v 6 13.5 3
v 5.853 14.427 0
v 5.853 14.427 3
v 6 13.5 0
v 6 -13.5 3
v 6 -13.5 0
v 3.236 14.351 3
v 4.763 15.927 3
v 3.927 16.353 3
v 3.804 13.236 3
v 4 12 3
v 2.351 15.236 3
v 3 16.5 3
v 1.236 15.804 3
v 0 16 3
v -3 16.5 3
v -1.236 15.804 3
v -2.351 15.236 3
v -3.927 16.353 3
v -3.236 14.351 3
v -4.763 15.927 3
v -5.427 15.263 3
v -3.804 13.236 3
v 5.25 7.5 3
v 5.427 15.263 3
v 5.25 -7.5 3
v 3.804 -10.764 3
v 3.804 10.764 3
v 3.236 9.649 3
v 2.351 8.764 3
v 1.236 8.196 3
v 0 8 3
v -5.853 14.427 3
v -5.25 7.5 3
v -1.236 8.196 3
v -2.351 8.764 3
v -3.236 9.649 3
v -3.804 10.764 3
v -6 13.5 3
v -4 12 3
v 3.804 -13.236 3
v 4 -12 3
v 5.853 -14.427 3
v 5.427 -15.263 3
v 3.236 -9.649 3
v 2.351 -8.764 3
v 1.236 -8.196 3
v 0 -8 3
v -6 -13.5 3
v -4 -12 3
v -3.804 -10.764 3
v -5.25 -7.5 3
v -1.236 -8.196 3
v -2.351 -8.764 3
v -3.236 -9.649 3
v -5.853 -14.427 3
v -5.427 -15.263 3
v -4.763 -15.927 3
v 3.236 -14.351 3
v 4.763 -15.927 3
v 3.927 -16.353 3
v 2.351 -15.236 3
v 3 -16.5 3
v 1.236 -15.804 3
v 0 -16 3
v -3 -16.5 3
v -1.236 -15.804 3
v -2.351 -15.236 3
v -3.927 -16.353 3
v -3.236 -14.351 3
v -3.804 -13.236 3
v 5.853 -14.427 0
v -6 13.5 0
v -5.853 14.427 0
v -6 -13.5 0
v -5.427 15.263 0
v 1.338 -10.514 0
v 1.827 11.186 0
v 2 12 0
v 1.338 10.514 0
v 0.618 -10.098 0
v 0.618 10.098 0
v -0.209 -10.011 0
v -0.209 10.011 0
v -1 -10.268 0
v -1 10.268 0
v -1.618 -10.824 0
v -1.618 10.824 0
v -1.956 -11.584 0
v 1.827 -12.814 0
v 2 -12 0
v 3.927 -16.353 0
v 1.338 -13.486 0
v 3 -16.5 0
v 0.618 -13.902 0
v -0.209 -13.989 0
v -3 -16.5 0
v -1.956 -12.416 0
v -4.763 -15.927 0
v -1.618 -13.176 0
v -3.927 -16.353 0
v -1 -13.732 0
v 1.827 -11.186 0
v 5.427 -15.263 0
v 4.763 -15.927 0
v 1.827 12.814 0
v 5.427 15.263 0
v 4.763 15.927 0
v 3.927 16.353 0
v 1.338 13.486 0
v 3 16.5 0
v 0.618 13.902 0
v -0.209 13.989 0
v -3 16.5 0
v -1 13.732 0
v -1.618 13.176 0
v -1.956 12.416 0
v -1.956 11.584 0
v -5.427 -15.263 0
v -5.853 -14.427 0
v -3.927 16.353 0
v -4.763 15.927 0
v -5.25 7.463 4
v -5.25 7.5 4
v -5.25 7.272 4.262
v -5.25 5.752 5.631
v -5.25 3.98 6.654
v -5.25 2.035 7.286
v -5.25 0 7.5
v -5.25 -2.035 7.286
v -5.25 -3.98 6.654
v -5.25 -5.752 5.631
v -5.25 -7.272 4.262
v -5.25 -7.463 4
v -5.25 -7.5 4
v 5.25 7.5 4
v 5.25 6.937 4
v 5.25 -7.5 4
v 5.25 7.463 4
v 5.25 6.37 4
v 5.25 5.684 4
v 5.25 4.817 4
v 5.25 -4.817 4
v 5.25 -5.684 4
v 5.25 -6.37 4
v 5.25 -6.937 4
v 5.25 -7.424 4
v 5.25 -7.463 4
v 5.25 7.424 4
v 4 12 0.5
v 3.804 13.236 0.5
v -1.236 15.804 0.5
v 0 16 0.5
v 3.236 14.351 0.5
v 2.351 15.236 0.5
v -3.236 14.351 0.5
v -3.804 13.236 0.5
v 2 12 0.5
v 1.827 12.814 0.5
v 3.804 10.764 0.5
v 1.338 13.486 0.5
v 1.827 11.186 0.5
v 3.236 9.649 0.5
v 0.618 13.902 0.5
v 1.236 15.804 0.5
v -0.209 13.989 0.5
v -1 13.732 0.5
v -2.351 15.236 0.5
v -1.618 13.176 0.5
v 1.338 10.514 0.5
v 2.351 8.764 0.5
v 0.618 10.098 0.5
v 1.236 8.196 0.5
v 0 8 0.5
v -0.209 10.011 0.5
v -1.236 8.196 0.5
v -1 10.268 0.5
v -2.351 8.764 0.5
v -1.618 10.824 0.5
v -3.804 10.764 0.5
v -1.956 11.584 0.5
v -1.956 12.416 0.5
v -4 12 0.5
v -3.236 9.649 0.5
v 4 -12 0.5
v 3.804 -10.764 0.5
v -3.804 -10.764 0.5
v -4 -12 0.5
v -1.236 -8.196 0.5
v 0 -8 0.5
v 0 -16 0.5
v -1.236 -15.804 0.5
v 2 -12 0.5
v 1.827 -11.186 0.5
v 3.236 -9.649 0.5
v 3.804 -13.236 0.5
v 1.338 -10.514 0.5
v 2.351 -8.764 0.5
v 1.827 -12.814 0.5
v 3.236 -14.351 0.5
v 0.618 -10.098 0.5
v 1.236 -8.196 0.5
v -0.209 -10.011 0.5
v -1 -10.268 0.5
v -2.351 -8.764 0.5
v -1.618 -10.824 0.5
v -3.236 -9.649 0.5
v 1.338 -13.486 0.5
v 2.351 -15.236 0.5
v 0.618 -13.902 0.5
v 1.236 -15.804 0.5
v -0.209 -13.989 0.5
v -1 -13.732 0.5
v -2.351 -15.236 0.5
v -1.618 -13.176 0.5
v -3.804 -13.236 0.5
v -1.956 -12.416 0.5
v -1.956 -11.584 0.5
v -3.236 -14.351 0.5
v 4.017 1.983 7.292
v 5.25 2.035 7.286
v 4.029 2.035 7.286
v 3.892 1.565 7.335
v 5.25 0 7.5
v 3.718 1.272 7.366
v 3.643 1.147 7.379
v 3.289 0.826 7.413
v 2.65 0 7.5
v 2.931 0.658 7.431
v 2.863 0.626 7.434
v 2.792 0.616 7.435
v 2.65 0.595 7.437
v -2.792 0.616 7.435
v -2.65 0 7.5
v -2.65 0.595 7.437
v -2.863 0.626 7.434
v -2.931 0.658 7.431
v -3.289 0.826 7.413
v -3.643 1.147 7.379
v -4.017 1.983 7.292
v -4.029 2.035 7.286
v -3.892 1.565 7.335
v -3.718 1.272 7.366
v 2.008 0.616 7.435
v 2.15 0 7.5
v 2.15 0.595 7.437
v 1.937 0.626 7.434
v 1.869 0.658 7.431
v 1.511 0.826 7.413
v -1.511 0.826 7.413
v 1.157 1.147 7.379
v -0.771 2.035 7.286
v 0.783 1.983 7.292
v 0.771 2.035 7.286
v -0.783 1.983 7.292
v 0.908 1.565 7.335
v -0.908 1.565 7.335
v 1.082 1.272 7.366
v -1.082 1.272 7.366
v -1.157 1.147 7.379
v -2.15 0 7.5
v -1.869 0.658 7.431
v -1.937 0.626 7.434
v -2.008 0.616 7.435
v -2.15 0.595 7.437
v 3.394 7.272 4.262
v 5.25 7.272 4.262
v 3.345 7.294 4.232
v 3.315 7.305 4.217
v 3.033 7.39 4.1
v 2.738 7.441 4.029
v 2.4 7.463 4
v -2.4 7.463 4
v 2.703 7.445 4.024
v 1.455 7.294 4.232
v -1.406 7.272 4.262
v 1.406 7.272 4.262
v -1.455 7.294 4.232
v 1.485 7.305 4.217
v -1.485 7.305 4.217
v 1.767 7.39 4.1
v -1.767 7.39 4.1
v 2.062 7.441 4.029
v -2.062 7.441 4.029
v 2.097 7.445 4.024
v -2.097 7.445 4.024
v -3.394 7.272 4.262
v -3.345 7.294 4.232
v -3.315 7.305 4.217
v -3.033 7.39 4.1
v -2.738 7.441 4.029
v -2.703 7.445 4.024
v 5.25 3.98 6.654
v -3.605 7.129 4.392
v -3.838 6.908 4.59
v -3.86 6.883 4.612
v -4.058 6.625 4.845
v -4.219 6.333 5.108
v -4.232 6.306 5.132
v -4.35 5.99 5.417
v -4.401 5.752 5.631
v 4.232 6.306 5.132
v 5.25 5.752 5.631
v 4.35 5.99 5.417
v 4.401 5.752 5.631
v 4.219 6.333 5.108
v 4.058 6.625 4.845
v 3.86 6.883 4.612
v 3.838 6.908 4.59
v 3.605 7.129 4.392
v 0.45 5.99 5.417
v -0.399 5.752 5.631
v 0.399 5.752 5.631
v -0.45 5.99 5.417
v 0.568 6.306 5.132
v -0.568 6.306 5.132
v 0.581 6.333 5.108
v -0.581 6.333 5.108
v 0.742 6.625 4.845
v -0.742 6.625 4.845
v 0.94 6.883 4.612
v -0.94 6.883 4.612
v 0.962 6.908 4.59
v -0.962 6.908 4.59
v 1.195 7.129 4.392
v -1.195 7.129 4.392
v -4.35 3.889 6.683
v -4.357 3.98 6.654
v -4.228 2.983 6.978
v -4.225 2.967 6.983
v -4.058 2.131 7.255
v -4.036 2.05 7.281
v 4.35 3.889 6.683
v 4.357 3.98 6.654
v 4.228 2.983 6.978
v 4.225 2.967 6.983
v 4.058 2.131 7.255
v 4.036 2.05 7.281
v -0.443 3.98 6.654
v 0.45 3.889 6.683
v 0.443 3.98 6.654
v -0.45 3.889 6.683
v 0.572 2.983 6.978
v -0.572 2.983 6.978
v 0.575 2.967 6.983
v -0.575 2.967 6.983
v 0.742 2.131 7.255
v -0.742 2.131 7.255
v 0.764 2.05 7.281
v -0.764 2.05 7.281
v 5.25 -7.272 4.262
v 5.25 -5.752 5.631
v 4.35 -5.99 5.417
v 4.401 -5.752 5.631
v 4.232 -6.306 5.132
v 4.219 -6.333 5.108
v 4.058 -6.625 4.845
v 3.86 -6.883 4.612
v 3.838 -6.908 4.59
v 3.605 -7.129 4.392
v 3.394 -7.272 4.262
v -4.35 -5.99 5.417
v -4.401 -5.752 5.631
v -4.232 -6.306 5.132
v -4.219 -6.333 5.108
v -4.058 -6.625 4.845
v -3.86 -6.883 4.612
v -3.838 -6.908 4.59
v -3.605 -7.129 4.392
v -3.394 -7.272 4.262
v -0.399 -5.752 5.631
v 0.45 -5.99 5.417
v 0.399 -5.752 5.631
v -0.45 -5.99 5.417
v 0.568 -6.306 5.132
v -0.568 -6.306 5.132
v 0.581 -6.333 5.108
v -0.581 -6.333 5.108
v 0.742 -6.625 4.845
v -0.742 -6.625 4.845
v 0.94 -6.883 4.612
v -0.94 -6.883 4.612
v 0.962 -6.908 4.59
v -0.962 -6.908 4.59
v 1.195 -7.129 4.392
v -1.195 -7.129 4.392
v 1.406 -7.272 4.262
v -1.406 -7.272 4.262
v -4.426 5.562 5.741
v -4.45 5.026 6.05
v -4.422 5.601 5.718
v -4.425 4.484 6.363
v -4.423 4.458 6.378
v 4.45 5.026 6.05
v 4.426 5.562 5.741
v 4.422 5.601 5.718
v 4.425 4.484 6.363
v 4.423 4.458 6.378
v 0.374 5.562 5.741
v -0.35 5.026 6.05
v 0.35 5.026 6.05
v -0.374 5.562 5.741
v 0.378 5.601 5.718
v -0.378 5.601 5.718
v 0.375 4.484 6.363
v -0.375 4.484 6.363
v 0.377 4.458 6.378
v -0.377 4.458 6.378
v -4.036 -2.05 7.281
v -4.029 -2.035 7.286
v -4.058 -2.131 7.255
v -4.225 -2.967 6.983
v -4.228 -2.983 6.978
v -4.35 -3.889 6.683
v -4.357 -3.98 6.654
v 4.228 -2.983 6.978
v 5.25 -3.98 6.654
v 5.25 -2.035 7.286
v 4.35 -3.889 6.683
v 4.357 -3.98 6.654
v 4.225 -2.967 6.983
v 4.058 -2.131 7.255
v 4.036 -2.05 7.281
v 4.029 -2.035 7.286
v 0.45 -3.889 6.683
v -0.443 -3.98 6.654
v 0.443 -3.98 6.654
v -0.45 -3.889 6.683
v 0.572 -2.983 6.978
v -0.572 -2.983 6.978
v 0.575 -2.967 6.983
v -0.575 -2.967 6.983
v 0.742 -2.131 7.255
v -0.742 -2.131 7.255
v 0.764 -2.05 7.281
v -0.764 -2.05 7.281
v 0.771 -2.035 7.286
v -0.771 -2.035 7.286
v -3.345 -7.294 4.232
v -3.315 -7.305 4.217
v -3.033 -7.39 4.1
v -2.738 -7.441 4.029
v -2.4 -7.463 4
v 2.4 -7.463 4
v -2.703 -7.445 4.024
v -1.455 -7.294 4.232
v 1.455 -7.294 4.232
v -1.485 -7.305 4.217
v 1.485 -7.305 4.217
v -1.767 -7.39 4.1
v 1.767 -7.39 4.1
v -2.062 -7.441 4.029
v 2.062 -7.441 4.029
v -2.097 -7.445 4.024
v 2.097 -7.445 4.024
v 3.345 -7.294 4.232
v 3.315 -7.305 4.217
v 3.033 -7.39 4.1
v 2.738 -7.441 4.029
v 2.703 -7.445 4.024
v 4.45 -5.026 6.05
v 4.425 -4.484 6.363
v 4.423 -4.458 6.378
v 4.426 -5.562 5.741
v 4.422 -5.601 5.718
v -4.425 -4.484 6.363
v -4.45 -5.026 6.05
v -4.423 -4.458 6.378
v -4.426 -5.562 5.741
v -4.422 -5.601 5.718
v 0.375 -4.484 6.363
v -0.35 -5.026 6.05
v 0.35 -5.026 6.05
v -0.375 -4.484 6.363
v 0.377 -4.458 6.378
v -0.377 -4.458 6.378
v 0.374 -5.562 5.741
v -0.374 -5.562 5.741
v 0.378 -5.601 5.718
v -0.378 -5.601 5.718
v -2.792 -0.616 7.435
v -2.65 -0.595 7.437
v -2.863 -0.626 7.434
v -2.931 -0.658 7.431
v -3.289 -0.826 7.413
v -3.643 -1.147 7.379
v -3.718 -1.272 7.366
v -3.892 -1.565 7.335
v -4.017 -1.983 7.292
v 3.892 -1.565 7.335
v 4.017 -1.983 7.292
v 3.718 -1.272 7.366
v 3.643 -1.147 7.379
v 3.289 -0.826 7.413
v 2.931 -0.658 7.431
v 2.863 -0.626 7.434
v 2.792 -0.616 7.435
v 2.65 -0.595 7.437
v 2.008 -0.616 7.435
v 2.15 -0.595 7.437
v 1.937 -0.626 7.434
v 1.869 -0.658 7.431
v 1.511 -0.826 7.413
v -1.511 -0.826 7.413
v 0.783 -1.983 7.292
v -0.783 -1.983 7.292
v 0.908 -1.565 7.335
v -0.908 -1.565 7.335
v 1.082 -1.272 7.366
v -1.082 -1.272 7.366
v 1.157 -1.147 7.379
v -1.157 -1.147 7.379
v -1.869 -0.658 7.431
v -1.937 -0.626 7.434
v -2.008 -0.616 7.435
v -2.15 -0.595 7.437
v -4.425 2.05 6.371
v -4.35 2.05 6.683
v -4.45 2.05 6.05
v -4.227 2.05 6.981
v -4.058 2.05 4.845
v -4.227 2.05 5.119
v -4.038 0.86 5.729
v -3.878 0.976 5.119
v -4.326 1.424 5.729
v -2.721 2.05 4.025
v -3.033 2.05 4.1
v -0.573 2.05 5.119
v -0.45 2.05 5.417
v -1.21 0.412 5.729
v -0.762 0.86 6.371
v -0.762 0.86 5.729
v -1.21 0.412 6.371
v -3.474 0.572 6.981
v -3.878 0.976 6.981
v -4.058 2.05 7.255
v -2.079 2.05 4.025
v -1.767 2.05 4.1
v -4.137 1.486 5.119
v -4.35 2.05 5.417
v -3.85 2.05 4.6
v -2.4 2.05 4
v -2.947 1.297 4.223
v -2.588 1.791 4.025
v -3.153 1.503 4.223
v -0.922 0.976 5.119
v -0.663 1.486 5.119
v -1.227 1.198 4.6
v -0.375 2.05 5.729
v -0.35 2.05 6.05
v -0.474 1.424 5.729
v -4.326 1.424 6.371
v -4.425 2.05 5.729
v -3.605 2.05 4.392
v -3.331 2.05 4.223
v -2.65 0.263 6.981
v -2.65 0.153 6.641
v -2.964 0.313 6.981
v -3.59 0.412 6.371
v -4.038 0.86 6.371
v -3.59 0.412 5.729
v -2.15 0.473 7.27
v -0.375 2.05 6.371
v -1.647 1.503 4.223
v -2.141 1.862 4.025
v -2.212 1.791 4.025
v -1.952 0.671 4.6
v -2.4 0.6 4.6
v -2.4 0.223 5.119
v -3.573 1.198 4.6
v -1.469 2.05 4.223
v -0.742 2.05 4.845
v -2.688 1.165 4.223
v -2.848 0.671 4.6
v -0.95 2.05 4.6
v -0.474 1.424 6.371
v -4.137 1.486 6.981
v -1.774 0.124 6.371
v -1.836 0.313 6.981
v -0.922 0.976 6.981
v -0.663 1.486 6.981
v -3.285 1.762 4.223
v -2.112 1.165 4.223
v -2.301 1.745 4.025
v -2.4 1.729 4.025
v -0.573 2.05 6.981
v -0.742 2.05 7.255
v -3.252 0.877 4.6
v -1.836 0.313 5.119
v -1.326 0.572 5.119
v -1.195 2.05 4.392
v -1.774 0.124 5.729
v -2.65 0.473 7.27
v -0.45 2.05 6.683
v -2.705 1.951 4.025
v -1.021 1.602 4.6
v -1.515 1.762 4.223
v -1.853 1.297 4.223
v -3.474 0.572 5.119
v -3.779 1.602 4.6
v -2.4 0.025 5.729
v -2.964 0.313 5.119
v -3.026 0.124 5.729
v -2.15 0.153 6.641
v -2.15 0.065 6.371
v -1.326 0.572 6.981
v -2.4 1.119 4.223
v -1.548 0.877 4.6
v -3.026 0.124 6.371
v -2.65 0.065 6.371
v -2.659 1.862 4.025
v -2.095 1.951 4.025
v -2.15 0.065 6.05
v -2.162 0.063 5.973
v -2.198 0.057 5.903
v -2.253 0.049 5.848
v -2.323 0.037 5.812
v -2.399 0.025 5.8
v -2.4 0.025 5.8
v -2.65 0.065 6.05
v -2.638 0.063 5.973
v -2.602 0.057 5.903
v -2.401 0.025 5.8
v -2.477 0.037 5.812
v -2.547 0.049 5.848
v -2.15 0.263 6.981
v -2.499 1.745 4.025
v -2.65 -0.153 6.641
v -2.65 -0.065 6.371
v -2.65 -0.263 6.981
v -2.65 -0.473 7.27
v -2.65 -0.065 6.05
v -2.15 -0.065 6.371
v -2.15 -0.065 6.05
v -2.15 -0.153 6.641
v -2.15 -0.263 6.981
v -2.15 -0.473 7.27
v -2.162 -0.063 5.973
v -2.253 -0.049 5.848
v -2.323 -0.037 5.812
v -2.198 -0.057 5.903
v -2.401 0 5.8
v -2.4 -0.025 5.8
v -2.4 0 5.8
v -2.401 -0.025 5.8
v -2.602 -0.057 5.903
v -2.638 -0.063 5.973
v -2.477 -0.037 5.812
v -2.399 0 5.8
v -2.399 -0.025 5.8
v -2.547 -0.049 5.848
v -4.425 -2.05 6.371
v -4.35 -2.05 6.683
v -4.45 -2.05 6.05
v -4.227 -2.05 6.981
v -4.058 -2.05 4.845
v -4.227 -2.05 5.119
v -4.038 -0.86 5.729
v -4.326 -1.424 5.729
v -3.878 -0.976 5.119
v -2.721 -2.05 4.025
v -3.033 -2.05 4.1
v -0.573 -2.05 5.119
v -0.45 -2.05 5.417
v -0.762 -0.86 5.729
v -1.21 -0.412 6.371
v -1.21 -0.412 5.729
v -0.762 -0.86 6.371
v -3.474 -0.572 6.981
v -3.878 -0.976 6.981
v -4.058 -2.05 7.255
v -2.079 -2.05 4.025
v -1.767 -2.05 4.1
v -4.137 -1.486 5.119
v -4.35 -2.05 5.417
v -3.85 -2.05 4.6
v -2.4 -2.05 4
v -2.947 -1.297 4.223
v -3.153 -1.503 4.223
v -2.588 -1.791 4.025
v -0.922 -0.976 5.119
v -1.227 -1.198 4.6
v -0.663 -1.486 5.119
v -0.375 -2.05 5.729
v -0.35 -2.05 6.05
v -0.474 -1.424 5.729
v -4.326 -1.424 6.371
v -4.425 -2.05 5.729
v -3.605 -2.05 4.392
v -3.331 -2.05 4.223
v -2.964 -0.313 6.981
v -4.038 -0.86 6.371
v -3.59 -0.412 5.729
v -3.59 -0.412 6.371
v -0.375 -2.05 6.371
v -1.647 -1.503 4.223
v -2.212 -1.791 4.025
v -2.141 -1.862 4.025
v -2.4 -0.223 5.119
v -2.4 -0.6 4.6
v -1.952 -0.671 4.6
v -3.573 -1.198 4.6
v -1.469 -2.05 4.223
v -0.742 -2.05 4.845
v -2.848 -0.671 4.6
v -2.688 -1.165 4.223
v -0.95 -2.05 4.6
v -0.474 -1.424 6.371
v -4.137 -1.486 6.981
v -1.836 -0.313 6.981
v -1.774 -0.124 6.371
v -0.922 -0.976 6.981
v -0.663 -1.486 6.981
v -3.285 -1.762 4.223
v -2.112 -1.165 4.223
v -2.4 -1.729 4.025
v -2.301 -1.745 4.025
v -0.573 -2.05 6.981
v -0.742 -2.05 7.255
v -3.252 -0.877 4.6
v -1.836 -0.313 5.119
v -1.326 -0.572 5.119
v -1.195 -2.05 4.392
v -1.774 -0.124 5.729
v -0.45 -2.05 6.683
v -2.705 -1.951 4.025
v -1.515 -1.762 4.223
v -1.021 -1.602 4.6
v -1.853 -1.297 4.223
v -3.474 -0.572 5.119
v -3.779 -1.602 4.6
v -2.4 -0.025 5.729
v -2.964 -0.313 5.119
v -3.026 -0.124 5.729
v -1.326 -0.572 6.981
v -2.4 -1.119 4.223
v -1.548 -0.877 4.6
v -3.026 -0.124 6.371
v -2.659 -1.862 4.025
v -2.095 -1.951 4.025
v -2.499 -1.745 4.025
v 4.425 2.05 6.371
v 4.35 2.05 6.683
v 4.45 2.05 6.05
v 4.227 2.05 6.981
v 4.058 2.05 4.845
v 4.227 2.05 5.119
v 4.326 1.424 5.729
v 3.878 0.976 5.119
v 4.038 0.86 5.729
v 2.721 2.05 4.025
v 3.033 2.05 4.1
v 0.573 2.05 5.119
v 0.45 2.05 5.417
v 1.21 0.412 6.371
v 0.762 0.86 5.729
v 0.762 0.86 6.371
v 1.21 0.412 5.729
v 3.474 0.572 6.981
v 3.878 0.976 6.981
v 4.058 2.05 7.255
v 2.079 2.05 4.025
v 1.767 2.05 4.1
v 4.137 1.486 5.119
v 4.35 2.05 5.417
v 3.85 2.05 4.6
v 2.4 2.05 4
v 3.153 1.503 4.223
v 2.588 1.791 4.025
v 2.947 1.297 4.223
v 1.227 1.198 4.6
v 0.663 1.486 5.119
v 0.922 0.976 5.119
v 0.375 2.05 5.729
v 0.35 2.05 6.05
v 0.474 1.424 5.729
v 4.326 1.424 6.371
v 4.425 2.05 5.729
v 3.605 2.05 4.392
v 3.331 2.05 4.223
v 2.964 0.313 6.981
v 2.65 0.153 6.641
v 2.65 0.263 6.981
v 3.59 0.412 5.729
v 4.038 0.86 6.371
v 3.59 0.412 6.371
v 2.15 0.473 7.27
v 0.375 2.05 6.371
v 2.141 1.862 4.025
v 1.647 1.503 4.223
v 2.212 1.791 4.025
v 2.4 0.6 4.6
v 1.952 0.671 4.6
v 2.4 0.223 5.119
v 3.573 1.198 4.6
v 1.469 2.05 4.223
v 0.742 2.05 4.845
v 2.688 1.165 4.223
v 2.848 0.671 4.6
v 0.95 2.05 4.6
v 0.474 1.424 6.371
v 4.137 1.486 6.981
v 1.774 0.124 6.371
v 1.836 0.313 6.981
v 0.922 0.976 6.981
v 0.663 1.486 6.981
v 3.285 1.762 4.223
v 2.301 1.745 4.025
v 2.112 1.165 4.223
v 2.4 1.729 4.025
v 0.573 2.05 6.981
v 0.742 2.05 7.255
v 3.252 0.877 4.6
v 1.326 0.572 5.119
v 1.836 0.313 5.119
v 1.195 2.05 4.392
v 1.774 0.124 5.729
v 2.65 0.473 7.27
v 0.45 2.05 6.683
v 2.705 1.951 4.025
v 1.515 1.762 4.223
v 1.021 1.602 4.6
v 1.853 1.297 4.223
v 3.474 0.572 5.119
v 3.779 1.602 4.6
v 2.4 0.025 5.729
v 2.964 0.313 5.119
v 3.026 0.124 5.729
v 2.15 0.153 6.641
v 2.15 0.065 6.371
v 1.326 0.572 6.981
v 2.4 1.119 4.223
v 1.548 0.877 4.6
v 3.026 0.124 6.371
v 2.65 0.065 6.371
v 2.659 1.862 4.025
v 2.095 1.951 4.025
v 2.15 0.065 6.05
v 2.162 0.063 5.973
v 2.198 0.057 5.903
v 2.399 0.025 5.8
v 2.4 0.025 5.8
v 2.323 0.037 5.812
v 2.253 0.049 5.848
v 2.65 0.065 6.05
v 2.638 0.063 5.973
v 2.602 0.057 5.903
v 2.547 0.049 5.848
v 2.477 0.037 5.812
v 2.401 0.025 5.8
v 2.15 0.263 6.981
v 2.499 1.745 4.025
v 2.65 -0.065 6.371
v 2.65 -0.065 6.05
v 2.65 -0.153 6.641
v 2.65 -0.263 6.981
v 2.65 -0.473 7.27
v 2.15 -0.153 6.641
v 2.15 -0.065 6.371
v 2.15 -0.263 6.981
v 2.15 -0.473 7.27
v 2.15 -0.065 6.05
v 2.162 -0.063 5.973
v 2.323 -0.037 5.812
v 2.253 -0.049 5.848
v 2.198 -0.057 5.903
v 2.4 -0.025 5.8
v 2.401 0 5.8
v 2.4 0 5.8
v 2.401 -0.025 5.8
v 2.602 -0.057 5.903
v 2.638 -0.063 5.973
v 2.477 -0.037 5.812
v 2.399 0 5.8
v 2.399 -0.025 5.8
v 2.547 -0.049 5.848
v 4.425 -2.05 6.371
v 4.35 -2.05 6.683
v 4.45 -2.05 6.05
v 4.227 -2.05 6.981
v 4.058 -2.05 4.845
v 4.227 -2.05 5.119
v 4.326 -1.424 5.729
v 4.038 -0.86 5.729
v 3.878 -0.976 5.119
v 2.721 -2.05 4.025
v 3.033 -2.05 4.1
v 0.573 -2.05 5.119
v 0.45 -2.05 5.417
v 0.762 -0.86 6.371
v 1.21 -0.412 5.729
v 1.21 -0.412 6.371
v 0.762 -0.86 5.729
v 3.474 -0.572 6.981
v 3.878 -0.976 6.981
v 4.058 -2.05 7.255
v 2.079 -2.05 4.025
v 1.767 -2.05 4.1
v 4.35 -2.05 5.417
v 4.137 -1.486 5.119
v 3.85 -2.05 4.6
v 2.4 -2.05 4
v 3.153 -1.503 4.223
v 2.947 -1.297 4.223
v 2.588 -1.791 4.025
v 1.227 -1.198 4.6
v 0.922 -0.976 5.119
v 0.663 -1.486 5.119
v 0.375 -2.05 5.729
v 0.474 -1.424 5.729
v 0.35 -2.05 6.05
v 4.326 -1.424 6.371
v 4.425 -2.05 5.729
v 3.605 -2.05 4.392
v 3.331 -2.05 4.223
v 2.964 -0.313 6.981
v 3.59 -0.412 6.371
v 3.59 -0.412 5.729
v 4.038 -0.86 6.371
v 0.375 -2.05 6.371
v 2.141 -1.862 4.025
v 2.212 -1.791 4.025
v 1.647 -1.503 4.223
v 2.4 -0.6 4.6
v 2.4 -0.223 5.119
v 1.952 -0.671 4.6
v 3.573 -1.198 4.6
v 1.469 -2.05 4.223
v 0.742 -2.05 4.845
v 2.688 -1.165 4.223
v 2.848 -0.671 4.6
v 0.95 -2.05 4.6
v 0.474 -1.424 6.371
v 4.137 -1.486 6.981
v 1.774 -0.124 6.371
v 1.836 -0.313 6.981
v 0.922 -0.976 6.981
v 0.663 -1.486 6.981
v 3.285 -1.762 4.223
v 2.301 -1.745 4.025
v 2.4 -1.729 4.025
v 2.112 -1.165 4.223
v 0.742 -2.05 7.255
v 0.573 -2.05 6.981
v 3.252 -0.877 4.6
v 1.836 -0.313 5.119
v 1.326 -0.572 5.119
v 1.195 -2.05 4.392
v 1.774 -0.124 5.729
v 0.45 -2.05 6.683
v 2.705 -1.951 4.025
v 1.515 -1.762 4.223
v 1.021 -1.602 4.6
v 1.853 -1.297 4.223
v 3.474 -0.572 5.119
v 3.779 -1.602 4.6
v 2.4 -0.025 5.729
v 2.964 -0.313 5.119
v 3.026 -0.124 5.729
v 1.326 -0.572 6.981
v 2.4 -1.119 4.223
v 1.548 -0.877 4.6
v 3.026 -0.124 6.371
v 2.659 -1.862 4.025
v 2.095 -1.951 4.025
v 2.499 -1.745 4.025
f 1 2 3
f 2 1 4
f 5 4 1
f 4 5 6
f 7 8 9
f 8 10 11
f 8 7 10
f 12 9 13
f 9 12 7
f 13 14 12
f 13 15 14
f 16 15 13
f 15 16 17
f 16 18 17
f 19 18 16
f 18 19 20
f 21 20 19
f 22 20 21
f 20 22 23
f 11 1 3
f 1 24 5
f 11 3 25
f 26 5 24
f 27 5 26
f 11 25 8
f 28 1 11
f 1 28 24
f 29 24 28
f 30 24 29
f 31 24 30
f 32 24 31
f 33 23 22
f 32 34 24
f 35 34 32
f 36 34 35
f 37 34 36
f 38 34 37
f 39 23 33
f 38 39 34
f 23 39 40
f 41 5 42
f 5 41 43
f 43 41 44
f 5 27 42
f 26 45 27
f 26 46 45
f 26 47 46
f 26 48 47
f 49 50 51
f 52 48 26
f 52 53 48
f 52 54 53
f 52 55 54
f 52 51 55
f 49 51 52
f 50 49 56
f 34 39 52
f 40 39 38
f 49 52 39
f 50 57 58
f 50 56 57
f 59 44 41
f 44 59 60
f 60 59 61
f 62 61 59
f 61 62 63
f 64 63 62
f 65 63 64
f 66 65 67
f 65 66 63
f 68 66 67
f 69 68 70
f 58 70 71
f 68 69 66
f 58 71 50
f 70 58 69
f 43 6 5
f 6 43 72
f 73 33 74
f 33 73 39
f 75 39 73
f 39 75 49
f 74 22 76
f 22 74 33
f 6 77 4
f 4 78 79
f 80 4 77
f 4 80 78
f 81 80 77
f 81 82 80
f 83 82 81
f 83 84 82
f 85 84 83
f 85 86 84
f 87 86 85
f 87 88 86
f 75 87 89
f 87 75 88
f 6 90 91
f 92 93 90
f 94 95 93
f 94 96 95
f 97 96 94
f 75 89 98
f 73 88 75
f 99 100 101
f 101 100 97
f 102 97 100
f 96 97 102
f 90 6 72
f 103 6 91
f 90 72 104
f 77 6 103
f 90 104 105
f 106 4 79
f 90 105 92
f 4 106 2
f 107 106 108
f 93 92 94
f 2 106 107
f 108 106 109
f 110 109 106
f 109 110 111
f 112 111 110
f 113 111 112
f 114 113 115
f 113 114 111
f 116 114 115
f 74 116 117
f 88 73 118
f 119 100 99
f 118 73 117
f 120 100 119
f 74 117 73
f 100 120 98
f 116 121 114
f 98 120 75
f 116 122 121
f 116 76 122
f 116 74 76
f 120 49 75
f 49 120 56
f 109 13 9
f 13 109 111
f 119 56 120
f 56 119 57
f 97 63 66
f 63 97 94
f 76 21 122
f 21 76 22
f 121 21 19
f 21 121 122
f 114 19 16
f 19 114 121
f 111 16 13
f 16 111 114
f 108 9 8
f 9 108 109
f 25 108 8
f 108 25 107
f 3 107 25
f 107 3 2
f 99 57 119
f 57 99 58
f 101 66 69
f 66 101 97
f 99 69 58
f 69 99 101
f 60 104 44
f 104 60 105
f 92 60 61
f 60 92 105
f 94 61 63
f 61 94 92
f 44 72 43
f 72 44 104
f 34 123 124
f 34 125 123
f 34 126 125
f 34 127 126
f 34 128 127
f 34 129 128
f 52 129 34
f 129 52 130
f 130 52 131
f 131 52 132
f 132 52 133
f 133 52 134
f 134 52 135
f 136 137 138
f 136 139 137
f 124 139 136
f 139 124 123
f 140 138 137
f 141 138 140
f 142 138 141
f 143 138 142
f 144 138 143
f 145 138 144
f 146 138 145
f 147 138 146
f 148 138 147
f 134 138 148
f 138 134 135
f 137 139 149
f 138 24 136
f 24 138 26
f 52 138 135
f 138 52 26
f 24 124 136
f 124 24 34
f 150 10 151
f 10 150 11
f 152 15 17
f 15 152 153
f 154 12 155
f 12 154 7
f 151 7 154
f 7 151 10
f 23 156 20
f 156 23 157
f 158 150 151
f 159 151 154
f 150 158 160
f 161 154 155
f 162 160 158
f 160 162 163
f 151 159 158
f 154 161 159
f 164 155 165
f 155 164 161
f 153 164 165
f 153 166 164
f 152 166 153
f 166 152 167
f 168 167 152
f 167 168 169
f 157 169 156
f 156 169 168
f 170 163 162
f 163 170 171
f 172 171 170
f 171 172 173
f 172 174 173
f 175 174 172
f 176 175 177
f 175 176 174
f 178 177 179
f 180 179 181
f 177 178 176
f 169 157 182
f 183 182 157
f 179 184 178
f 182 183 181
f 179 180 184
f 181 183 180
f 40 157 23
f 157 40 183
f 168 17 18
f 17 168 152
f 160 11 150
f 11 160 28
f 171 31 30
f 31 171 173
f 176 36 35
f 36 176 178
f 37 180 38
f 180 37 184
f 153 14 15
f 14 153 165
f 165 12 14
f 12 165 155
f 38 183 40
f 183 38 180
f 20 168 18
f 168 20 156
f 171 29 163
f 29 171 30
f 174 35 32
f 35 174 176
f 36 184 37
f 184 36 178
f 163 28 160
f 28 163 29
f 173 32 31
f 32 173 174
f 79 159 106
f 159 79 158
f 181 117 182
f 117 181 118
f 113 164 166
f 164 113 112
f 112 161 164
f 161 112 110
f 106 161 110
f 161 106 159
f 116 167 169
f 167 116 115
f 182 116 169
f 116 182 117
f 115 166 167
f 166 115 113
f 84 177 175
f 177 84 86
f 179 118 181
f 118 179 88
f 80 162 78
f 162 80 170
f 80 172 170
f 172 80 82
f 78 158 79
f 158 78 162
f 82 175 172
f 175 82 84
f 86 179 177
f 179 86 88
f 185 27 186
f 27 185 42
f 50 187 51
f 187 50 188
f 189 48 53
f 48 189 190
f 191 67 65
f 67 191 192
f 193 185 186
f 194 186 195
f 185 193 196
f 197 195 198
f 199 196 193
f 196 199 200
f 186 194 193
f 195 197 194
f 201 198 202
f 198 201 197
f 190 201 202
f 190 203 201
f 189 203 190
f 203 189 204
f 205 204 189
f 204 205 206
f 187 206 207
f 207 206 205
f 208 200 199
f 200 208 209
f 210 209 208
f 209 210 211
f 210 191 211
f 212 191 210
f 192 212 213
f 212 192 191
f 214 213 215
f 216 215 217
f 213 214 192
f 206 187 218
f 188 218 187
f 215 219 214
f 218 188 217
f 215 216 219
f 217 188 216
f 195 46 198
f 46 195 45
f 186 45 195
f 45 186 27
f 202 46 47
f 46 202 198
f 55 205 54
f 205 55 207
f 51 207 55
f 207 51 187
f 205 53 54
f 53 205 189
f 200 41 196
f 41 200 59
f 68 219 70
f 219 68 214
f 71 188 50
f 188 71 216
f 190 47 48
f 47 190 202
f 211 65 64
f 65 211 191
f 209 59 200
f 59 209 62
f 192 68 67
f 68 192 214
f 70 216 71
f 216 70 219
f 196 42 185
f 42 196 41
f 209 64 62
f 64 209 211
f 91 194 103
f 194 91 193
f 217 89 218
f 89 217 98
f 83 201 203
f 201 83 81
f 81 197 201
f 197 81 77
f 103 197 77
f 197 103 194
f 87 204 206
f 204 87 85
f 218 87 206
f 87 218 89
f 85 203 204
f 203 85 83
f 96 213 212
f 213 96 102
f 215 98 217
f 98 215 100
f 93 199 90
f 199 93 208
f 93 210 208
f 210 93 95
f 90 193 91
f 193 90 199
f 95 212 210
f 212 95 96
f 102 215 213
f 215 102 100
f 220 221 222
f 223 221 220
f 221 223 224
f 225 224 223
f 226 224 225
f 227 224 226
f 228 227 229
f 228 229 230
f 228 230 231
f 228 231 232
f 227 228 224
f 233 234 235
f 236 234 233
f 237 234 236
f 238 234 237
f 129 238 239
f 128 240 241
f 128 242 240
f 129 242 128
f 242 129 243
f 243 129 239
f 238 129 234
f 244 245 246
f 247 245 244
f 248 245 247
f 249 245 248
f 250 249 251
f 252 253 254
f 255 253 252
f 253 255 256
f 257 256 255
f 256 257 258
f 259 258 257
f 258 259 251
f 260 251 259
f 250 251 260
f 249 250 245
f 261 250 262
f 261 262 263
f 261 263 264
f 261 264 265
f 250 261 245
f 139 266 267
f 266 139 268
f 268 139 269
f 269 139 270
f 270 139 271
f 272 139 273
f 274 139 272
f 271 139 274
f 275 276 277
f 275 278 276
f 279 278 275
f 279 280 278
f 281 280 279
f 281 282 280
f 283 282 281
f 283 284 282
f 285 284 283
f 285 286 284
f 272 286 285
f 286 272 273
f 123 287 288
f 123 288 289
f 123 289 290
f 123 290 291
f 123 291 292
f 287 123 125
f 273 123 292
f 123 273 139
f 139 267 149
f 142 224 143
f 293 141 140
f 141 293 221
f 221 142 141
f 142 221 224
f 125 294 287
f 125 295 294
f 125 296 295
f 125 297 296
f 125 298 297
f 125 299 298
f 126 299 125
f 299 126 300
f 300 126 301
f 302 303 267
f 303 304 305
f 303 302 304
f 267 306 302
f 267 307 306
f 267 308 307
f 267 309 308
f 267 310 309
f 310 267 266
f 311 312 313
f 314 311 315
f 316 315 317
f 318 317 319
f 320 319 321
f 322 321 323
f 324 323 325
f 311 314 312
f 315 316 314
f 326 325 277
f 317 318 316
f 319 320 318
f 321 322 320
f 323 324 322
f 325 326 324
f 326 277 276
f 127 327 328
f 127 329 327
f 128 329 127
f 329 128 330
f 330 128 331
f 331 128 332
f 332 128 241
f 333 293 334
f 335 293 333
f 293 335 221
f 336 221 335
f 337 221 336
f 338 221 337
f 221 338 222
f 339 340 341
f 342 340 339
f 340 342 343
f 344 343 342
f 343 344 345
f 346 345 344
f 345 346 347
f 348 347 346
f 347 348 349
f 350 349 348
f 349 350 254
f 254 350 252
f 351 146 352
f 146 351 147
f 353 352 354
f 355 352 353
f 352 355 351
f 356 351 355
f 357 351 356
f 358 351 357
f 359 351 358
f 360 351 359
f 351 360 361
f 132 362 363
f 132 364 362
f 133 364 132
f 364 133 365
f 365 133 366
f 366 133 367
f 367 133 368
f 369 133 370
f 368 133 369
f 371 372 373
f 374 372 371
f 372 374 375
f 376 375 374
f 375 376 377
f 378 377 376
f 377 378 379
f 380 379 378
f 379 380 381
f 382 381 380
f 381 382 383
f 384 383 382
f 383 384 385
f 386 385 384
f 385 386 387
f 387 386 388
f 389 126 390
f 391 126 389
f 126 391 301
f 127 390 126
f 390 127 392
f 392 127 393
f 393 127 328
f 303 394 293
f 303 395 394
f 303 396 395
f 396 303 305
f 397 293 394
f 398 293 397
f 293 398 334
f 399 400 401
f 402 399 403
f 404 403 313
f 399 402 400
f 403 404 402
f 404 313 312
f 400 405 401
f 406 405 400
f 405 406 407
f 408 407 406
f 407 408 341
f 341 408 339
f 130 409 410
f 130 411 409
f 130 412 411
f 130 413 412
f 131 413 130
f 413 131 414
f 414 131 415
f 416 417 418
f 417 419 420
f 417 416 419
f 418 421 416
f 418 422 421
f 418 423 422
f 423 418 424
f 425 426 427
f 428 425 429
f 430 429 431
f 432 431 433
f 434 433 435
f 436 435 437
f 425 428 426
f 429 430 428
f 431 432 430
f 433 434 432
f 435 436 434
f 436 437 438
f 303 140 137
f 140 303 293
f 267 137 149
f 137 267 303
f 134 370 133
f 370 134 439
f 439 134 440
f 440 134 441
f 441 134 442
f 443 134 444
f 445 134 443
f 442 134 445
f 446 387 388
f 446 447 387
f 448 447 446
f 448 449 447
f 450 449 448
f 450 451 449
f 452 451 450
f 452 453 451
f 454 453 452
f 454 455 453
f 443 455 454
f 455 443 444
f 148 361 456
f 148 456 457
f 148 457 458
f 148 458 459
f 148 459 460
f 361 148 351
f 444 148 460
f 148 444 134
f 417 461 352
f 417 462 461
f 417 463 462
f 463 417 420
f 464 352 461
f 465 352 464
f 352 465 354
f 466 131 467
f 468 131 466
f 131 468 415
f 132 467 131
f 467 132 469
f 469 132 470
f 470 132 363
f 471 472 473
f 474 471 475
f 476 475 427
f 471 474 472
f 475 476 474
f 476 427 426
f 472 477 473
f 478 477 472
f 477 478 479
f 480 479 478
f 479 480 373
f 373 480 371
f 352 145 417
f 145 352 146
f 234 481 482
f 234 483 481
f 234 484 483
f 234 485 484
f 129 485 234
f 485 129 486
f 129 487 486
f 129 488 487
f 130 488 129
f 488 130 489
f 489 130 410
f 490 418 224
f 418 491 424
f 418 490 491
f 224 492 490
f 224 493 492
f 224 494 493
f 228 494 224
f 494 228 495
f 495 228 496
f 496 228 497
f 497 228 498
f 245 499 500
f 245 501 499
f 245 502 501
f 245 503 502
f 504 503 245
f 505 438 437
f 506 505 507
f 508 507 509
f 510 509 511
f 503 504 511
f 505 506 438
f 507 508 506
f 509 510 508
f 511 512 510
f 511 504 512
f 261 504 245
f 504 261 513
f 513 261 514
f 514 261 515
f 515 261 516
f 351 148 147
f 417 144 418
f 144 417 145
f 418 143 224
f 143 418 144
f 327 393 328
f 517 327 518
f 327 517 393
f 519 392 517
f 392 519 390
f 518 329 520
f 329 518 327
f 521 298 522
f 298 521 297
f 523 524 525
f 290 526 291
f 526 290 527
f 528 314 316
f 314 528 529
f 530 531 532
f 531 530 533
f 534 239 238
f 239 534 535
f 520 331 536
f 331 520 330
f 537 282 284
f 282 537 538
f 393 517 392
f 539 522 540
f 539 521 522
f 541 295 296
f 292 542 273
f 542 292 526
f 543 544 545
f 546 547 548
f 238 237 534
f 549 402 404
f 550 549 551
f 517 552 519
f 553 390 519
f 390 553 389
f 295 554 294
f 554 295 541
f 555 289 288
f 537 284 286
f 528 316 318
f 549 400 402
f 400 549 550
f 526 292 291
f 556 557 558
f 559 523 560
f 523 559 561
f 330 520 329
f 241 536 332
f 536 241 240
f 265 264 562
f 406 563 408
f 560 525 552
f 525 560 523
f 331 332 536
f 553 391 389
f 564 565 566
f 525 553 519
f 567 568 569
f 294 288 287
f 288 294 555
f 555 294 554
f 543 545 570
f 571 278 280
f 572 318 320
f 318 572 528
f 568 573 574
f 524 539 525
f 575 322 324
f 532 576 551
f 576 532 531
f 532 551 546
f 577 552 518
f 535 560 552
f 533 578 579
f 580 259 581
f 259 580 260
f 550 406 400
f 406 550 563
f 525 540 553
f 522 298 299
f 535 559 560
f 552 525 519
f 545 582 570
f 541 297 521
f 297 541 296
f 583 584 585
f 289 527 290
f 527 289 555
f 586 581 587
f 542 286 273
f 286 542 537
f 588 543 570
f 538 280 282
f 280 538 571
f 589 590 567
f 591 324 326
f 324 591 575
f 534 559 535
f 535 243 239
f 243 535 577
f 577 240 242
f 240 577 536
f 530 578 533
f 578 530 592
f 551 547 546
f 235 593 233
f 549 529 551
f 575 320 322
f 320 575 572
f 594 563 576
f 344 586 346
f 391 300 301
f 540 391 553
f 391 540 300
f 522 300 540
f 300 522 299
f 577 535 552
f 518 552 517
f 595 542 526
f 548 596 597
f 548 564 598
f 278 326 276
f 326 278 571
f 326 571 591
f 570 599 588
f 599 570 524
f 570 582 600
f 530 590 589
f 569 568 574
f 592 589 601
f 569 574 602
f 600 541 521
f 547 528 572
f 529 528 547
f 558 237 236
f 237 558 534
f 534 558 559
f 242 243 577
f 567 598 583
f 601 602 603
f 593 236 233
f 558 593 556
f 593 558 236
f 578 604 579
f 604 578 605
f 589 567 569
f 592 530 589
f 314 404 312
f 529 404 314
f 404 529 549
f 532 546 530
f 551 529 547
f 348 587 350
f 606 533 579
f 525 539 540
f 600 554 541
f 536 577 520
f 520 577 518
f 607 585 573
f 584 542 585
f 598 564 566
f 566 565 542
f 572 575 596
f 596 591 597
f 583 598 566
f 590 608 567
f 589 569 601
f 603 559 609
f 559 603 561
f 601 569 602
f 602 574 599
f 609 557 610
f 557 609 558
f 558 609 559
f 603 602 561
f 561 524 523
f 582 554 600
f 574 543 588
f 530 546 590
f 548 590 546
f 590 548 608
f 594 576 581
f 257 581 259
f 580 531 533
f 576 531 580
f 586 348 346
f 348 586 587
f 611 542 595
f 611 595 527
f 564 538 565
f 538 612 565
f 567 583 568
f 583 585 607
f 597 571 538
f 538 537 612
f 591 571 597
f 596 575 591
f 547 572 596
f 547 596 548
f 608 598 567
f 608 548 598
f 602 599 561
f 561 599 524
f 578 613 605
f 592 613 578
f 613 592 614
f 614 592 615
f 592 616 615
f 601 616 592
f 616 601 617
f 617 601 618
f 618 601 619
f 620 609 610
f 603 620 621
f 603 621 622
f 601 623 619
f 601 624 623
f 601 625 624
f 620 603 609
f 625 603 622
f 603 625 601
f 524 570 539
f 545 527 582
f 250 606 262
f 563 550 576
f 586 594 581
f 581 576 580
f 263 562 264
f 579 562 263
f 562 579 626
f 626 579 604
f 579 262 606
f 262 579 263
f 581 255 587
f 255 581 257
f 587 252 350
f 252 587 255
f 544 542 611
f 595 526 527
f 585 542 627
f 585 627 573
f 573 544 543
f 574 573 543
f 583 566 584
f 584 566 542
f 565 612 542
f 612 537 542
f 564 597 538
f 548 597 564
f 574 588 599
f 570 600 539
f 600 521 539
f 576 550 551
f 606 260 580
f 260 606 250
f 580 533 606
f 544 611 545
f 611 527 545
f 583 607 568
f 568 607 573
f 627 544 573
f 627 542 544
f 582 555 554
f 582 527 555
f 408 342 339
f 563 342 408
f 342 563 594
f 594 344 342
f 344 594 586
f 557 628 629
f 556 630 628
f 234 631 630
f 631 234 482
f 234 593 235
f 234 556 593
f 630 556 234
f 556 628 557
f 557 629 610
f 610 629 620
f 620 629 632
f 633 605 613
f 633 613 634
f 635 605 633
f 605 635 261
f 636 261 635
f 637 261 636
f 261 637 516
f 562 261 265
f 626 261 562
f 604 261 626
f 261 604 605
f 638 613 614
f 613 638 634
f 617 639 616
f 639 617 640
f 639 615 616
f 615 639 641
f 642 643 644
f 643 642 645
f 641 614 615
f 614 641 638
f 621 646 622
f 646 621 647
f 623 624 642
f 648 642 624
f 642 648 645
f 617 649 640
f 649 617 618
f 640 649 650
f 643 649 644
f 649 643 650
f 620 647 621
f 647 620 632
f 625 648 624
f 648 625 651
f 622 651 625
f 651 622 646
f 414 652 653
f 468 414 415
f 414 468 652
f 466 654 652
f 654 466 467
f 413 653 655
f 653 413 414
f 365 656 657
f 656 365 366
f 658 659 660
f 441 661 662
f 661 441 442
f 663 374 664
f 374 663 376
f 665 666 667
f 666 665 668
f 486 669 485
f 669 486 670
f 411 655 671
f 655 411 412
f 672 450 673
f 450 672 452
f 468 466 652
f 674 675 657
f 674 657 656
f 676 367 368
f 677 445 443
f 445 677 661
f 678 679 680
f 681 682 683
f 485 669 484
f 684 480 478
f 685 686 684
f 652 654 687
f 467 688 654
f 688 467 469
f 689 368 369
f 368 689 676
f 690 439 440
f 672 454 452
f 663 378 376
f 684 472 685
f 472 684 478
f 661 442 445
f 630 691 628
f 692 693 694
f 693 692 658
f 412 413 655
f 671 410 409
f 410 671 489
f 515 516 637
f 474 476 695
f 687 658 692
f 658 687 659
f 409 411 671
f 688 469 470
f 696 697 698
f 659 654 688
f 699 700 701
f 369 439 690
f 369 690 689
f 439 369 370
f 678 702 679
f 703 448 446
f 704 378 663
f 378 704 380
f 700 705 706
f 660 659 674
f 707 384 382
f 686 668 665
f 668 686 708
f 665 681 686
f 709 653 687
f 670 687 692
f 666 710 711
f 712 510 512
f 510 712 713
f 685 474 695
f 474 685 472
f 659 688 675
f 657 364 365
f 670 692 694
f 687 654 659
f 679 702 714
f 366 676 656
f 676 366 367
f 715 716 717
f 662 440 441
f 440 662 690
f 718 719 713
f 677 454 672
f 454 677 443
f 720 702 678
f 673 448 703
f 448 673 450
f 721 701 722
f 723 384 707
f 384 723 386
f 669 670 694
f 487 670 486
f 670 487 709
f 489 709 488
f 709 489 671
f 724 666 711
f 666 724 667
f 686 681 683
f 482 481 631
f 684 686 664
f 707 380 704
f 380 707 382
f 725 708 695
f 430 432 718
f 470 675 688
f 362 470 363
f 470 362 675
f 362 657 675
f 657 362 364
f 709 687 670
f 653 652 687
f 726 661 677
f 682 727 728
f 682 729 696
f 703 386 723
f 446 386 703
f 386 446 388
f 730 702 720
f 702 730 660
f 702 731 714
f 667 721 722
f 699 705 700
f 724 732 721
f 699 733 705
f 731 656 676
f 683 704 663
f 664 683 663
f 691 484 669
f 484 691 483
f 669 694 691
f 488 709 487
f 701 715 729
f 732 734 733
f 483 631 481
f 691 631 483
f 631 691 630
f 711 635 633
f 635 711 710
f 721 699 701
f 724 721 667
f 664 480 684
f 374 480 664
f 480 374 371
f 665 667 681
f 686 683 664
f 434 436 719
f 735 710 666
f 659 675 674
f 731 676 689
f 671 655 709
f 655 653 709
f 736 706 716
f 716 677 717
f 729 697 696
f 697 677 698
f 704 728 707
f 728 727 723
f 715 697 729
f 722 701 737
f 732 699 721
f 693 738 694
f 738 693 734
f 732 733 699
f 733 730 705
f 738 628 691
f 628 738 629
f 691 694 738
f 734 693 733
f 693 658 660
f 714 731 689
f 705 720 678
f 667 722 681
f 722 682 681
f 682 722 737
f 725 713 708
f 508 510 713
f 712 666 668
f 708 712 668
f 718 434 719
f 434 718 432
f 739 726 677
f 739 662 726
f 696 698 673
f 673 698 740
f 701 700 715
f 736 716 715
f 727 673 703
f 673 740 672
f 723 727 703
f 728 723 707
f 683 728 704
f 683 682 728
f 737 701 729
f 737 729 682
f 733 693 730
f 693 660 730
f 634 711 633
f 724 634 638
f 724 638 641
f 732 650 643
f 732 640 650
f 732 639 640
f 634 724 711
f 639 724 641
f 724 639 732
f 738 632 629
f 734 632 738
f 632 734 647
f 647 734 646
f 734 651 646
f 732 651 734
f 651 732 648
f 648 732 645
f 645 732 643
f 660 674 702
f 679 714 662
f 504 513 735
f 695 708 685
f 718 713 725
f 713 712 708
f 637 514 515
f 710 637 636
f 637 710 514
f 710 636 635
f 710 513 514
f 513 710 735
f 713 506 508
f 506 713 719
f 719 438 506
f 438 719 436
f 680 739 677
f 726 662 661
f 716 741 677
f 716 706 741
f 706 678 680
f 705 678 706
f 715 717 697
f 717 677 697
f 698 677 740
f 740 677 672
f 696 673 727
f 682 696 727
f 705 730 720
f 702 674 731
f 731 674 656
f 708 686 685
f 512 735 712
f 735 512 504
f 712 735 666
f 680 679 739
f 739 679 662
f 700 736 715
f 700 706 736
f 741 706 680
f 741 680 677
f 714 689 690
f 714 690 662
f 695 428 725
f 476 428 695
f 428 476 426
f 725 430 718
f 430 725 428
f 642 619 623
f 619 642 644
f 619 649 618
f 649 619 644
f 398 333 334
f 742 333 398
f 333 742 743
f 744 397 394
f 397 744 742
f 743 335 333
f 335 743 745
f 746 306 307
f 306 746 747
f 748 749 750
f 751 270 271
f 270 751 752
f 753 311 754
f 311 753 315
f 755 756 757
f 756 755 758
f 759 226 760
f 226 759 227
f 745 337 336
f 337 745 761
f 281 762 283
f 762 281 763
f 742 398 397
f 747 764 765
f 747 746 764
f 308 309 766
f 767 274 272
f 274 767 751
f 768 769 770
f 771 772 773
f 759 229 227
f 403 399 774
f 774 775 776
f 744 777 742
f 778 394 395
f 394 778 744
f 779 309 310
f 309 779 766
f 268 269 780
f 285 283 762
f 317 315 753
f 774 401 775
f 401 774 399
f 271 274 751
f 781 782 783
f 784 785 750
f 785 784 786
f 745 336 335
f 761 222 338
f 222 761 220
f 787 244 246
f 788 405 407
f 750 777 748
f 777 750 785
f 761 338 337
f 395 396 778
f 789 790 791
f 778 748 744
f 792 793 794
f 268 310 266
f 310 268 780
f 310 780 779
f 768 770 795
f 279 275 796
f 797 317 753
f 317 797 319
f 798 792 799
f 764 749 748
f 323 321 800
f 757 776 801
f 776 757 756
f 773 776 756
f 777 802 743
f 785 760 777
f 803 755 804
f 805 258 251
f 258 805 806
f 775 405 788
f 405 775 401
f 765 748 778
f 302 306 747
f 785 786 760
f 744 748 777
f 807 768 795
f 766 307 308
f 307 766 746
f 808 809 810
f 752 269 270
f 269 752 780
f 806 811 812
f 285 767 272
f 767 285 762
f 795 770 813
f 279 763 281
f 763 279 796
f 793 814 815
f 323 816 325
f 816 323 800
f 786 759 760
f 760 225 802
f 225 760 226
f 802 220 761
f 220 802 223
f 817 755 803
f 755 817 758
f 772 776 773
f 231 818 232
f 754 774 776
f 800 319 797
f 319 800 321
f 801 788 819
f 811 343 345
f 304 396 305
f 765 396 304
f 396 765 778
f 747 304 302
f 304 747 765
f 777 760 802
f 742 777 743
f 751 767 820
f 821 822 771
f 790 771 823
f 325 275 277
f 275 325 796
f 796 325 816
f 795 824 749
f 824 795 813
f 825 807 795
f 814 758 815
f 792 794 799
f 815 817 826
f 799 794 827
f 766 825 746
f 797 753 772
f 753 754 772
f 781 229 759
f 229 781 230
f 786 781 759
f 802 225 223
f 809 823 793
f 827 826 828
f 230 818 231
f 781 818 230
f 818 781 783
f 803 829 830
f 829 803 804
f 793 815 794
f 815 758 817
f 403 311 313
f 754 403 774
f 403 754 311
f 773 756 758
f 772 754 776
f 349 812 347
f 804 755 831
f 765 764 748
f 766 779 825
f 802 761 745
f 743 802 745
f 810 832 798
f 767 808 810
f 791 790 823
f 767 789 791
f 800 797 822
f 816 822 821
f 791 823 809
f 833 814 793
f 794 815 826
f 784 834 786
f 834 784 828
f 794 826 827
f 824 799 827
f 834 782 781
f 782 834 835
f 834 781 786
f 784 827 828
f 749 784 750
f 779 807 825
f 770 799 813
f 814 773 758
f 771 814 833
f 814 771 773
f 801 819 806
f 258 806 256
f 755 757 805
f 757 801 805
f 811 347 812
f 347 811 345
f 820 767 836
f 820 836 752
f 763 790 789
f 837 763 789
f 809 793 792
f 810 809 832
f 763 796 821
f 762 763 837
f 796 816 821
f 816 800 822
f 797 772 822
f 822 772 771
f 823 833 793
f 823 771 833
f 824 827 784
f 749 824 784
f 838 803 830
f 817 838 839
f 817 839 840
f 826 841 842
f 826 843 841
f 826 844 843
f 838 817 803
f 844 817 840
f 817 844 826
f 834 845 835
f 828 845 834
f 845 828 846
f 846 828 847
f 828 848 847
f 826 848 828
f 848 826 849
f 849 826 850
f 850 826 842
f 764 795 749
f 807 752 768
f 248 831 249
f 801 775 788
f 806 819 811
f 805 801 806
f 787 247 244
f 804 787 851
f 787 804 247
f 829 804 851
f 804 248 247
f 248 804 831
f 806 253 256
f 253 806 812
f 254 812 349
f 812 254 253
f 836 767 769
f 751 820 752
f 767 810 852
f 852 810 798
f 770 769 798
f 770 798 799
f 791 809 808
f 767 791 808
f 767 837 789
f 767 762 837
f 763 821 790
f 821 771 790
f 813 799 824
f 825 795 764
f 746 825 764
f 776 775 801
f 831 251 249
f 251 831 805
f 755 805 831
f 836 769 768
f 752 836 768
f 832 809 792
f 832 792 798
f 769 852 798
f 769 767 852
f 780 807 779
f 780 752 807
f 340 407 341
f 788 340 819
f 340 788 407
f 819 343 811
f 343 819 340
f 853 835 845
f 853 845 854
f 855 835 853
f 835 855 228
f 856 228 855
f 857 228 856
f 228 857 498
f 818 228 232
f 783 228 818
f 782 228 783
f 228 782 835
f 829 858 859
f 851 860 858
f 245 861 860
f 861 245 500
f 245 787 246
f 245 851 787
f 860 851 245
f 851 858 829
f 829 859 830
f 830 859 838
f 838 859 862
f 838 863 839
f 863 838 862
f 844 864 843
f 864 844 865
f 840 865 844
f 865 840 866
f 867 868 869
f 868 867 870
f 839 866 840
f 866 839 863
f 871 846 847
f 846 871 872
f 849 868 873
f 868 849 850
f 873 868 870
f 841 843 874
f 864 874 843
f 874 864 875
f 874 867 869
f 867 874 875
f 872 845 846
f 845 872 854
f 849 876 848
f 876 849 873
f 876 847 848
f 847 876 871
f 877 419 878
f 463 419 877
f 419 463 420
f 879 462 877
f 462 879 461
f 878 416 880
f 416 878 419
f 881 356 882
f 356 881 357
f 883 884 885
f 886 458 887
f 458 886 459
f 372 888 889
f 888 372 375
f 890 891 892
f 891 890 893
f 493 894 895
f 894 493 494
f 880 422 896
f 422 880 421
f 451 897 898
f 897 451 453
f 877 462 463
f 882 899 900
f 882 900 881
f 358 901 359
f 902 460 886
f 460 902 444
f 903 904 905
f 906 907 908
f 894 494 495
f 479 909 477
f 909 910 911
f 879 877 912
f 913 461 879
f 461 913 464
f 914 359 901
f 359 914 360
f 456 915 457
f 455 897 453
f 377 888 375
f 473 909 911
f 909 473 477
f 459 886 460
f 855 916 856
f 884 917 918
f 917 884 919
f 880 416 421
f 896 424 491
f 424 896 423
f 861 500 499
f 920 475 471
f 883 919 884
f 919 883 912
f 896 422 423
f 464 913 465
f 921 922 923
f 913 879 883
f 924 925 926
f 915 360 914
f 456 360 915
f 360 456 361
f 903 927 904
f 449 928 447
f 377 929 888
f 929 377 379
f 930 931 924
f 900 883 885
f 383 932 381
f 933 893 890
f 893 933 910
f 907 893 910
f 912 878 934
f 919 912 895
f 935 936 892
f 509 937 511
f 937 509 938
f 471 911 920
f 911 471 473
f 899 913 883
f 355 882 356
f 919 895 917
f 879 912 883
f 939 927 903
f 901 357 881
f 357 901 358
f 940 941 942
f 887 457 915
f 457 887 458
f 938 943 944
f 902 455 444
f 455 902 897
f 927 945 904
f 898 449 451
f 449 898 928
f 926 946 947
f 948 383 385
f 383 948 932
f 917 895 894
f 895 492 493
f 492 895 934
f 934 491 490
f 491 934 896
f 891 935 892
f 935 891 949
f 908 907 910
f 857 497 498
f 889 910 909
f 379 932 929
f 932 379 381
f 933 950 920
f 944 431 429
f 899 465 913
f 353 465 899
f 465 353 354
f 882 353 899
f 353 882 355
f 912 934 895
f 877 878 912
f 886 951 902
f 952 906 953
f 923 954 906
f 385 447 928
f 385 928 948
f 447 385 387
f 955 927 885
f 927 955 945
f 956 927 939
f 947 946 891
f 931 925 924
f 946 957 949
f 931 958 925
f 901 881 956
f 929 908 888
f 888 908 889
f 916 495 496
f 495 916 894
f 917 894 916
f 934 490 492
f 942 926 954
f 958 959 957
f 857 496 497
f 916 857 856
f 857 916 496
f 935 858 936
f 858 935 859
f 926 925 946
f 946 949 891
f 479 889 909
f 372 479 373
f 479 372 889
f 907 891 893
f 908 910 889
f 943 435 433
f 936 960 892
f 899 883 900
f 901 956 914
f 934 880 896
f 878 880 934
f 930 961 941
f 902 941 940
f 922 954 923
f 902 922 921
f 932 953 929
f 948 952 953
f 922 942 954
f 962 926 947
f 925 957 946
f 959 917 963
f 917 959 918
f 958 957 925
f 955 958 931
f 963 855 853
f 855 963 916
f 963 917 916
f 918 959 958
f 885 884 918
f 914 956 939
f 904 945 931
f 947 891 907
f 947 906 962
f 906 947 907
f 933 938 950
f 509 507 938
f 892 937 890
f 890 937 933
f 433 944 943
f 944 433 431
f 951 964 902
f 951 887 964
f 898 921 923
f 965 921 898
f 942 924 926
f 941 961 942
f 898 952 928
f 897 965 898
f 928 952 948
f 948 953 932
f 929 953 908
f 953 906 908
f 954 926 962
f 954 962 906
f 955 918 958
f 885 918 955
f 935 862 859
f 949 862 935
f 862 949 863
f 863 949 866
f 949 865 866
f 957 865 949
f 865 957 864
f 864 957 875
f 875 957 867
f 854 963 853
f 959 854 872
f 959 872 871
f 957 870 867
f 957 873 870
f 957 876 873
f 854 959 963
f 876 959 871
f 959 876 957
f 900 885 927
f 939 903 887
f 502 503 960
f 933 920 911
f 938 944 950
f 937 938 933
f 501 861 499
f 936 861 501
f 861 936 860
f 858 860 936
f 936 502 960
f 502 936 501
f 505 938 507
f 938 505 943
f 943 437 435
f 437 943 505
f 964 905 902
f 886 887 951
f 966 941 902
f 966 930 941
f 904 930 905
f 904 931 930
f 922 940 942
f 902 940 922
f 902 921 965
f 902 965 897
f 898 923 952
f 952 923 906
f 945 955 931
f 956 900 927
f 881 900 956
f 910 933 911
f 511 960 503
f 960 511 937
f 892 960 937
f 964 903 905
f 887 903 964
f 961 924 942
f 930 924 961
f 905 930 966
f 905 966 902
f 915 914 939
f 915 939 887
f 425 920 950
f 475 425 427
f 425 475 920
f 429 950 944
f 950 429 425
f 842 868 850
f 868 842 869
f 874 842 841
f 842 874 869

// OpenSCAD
BALL_R = 4.1/2;
BODY_ROUNDING = 3;

BASE_HEIGHT = 3;

MIDDLE_W = 10.5;
MIDDLE_L = 15;
MIDDLE_HEIGHT = 4;

SCREW_SEP = 24;
SCREW_R_BIG = 4;
SCREW_R_SMALL = 2;

BUMP_HEIGHT = 3.5;

union () {
    difference () {
        union () {
            hull () for (x=[-1,1]) for (y=[-1,1]) {
                BR = BODY_ROUNDING;
                translate ([(12/2-BR)*x, (33/2-BR)*y, 0]) cylinder (BASE_HEIGHT, r=BR, $fn=20);
            }
            translate ([-MIDDLE_W/2, -15/2]) cube ([MIDDLE_W, MIDDLE_L, MIDDLE_HEIGHT]);
        }
        for (y=[SCREW_SEP/2,-SCREW_SEP/2]) {
            translate ([0, y, 0.5]) cylinder (100, r=SCREW_R_BIG, $fn=20);
            translate ([0, y, -15]) cylinder (100, r=SCREW_R_SMALL, $fn=15);
        }
    }
    translate ([0, 0, MIDDLE_HEIGHT]) difference () {
        intersection () {
            // http://math.stackexchange.com/questions/564058/calculate-the-radius-of-a-circle-given-the-chord-length-and-height-of-a-segment

            h = BUMP_HEIGHT;
            l = MIDDLE_L;
            r = (4*h*h + l*l) / (8*h);

            translate ([-MIDDLE_W/2, 0, -r+h]) rotate ([0, 90, 0]) cylinder (MIDDLE_W, r=r);
            translate ([-50, -50, 0]) cube ([100, 100, 100]);
        }
        for (sx=[-1, 1]) for (sy=[-1, 1]) scale ([sx, sy, 1]) {
            translate ([2.4, 0, BALL_R]) {
                translate ([0, -BALL_R, 0]) hull () {
                    rotate ([90, 0, 0]) cylinder (100, r=BALL_R, $fn=20);
                    sphere (r=BALL_R, $fn=20);
                }
                hull () for (z=[0, 5]) {
                    translate ([0, 1, z]) rotate ([90, 0, 0]) cylinder (100, r=0.25, $fn=20);
                }
            }
        }
    }
}
